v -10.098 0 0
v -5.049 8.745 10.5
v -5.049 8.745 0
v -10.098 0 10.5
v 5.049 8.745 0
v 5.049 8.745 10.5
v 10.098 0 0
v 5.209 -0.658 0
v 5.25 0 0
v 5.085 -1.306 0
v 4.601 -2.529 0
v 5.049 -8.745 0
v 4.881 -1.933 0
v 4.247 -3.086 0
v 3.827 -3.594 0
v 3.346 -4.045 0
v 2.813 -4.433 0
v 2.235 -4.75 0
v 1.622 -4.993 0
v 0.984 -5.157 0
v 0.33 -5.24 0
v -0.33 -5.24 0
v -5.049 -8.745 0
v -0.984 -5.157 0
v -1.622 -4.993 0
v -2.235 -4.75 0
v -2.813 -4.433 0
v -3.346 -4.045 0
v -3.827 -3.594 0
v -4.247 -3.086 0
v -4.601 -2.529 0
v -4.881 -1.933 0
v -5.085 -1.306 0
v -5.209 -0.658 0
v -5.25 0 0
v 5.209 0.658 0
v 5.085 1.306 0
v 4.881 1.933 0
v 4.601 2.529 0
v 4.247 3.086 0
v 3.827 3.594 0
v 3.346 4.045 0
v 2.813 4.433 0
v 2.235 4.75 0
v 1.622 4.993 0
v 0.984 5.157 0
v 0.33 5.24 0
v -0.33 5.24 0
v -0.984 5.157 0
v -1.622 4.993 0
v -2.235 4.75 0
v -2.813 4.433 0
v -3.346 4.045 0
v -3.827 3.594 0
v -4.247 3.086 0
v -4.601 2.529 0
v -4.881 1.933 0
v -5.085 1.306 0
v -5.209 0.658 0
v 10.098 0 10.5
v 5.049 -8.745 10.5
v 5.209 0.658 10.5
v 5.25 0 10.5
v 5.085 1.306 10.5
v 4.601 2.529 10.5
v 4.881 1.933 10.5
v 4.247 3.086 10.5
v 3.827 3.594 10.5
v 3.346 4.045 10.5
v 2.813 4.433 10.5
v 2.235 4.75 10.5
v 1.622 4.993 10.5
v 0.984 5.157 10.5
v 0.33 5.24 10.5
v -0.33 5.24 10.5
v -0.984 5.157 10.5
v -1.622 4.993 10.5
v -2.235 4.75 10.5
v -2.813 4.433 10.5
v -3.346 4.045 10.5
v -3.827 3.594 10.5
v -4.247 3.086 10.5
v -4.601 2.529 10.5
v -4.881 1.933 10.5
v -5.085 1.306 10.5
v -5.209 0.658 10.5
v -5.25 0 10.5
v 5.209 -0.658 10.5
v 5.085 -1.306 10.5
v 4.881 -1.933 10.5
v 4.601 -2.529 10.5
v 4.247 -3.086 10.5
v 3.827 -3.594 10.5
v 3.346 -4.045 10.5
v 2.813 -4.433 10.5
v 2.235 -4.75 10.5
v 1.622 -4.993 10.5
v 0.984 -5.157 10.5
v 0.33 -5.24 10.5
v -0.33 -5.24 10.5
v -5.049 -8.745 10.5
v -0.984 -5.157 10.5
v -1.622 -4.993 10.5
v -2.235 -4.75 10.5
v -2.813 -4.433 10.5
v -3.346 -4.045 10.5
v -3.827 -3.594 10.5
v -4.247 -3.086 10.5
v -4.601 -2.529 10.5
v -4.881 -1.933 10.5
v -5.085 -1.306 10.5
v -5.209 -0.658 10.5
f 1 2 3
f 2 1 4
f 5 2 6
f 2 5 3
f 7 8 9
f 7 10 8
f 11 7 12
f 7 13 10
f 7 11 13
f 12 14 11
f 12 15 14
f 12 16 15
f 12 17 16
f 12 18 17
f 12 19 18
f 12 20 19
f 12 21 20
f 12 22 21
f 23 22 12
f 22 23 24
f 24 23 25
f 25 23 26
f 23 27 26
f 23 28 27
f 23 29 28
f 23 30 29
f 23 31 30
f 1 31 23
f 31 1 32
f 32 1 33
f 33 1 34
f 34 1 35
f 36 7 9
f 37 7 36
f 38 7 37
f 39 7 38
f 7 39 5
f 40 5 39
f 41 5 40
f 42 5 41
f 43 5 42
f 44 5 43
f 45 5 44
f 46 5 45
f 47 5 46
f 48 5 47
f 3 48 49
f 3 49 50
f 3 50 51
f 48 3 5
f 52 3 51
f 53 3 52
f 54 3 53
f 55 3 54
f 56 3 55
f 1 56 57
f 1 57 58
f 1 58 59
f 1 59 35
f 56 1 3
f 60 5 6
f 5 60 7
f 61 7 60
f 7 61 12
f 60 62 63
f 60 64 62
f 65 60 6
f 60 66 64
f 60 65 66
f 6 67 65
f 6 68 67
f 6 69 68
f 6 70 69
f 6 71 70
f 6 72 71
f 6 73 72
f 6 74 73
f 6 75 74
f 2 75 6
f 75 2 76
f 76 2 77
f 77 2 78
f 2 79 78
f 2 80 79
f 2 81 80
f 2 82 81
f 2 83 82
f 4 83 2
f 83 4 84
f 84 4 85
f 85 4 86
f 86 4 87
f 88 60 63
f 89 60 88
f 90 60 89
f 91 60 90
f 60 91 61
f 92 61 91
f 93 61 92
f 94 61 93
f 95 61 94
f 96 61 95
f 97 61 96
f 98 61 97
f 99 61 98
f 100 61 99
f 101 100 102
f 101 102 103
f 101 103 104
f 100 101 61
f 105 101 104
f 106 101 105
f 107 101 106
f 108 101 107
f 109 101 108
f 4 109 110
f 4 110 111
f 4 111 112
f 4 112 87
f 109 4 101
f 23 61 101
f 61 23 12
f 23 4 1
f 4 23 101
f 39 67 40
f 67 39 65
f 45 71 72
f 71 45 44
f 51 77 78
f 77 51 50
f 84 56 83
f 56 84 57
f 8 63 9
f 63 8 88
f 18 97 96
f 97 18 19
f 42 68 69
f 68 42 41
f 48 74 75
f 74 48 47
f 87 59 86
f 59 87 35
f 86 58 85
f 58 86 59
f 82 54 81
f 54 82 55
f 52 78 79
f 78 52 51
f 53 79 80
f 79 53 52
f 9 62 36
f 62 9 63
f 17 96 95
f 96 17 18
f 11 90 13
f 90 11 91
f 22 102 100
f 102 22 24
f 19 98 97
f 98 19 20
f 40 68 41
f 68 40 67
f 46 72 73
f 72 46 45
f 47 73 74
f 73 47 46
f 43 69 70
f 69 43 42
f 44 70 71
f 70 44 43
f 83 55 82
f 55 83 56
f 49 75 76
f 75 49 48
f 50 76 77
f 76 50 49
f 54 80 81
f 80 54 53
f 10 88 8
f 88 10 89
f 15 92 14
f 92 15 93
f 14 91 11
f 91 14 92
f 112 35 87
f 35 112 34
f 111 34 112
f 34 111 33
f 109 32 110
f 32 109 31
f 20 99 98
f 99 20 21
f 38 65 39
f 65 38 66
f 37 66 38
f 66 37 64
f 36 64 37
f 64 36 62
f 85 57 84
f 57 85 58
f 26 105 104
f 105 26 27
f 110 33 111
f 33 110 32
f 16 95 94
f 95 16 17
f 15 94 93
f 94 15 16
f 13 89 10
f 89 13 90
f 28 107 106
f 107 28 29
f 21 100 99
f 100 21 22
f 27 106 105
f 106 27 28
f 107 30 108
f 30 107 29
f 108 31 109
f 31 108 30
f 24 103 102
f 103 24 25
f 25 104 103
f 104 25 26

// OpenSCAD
$fn = 50;


difference() {
	union() {
		translate(v = [0, 0, 0]) {
			rotate(a = [0, 0, 0]) {
				translate(v = [0, 0, 0]) {
					rotate(a = [0, 0, 0]) {
						linear_extrude(height = 10.5000000000) {
							polygon(points = [[10.0975000000, 0.0000000000], [5.0487500000, 8.7446915147], [-5.0487500000, 8.7446915147], [-10.0975000000, 0.0000000000], [-5.0487500000, -8.7446915147], [5.0487500000, -8.7446915147]]);
						}
					}
				}
			}
		}
		#translate(v = [-1.7500000000, -3.2500000000, 10.5000000000]) {
			rotate(a = [0, 0, 0]) {
				cube(size = [3.5000000000, 6.5000000000, 0.3000000000]);
			}
		}
		#translate(v = [-1.7500000000, -1.7500000000, 10.8000000000]) {
			rotate(a = [0, 0, 0]) {
				cube(size = [3.5000000000, 3.5000000000, 0.3000000000]);
			}
		}
		#translate(v = [-1.7500000000, -3.2500000000, -0.3000000000]) {
			rotate(a = [0, 0, 0]) {
				cube(size = [3.5000000000, 6.5000000000, 0.3000000000]);
			}
		}
		#translate(v = [-1.7500000000, -1.7500000000, -0.6000000000]) {
			rotate(a = [0, 0, 0]) {
				cube(size = [3.5000000000, 3.5000000000, 0.3000000000]);
			}
		}
	}
	union() {
		translate(v = [0, 0, -10]) {
			rotate(a = [0, 0, 0]) {
				cylinder(h = 100, r = 5.2500000000);
			}
		}
	}
}
